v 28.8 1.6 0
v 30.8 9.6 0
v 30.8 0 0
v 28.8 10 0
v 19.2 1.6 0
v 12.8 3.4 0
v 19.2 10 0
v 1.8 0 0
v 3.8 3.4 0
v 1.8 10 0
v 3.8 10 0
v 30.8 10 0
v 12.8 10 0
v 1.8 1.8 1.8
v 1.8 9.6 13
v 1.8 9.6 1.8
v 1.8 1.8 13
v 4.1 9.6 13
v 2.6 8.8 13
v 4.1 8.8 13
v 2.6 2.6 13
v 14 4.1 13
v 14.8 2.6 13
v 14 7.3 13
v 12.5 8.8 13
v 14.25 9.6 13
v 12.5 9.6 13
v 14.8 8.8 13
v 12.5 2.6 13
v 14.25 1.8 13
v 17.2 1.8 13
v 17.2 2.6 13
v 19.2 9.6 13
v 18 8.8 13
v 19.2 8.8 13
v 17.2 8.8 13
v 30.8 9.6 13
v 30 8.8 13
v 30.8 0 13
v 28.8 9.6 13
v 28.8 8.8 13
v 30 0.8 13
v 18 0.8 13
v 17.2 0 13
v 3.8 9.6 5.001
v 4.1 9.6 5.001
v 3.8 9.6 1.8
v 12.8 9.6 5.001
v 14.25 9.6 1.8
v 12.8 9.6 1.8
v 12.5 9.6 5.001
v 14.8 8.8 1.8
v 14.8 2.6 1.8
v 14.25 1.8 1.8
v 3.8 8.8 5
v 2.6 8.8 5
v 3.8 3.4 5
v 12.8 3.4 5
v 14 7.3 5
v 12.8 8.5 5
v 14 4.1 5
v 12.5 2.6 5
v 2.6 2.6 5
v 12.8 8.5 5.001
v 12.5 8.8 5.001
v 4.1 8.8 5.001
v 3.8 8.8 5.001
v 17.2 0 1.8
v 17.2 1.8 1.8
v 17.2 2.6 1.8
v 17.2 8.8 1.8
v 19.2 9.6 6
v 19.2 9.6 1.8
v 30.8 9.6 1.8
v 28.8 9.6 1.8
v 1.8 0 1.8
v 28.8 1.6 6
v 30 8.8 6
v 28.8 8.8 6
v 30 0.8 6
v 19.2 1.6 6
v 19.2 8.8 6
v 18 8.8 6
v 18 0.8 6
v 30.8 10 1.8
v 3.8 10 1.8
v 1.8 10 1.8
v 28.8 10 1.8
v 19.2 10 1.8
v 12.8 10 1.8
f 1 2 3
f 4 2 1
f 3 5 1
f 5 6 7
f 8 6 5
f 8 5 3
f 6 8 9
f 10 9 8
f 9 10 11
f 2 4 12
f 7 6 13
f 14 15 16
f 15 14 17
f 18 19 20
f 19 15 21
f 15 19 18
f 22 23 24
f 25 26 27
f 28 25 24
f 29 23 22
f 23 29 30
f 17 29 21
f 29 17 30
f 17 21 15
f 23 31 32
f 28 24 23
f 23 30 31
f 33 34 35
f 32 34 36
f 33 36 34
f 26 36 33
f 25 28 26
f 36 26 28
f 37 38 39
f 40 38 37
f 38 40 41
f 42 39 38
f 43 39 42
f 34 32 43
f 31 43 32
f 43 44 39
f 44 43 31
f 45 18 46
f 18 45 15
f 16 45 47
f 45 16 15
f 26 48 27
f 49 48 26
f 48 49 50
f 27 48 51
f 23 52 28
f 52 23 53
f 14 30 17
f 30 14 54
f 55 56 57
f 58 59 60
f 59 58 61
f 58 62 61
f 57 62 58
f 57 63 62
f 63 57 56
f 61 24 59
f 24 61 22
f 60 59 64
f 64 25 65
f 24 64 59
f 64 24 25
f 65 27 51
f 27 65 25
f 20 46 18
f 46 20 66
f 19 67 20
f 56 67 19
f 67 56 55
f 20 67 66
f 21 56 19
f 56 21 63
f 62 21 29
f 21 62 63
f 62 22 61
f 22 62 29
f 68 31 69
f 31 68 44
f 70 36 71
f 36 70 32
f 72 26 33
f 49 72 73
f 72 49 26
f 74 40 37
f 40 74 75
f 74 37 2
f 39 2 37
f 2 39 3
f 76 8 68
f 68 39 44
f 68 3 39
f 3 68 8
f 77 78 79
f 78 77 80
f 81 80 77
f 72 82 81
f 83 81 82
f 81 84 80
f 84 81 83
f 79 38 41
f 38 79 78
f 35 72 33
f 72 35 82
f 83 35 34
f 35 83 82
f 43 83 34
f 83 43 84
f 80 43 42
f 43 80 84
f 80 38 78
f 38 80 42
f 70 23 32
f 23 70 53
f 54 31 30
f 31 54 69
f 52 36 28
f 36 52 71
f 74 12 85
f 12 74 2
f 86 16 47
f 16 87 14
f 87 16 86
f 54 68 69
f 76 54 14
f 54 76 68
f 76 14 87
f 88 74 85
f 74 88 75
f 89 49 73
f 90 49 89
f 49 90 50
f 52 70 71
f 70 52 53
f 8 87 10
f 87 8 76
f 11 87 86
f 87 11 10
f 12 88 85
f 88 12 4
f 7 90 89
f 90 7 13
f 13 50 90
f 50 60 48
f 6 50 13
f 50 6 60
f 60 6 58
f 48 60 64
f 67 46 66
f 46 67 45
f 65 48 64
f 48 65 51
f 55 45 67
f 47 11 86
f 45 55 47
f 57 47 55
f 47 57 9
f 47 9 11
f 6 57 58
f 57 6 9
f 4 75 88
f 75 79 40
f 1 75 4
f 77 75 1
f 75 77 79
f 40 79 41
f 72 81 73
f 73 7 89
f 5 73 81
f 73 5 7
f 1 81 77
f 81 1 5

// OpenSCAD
e=.001;
xt30_w=11.4;
xt30_h=6.2;
b=.8;
n=1.2;
xt30_n=1.5;

rj45_w=12;
rj45_h=8;

jig_h=13;

module keepout(w, h, b, n)
{
translate([0,0,jig_h-7])
linear_extrude(8+e)
	translate([b,b])
	polygon([[0,0], [w,0], [w,h], [w-n,h], [w-n,h+b+e], [n,h+b+e], [n, h], [0,h]]);
}

module xt_keepout(w, h, b, n, ch)
{
translate([0,0,jig_h-8])
linear_extrude(8+e)
	translate([b,b])
	polygon([[0,0], [w-ch,0], [w, ch], [w,h-ch], [w-n,h], [w-n,h+b+e], [n,h+b+e], [n, h], [0,h]]);
}


module xt_clam()
{
{
	difference()
	{
		linear_extrude(jig_h)
			square([xt30_w+b*2,xt30_h+b*2]);
		xt_keepout(xt30_w, xt30_h, b, xt30_n, xt30_n);
	}
}
}

module rj45_clam()
{
{
	difference()
	{
		linear_extrude(jig_h)
			square([rj45_w+b*2,rj45_h+b*2]);
		keepout(rj45_w, rj45_h, b, n);
	}
}
}

difference()
{
union(){
translate([1.8,rj45_h-xt30_h,0])
xt_clam();
translate([17.2,0,0])
rj45_clam();
translate([1.8,0,0])
cube([29,10,1.8]);

for (y=[1.8, 8.8])
translate([14.25,y,0])
cube([3.5,.8,jig_h]);

}
union(){
translate([1.8+b+n,rj45_h-xt30_h+b*2,-e])
cube([xt30_w-2*n,12,e*2+jig_h-8]);

translate([17.2+b+n,b*2,-e])
cube([rj45_w-2*n,12,e*2+jig_h]);
}
}
